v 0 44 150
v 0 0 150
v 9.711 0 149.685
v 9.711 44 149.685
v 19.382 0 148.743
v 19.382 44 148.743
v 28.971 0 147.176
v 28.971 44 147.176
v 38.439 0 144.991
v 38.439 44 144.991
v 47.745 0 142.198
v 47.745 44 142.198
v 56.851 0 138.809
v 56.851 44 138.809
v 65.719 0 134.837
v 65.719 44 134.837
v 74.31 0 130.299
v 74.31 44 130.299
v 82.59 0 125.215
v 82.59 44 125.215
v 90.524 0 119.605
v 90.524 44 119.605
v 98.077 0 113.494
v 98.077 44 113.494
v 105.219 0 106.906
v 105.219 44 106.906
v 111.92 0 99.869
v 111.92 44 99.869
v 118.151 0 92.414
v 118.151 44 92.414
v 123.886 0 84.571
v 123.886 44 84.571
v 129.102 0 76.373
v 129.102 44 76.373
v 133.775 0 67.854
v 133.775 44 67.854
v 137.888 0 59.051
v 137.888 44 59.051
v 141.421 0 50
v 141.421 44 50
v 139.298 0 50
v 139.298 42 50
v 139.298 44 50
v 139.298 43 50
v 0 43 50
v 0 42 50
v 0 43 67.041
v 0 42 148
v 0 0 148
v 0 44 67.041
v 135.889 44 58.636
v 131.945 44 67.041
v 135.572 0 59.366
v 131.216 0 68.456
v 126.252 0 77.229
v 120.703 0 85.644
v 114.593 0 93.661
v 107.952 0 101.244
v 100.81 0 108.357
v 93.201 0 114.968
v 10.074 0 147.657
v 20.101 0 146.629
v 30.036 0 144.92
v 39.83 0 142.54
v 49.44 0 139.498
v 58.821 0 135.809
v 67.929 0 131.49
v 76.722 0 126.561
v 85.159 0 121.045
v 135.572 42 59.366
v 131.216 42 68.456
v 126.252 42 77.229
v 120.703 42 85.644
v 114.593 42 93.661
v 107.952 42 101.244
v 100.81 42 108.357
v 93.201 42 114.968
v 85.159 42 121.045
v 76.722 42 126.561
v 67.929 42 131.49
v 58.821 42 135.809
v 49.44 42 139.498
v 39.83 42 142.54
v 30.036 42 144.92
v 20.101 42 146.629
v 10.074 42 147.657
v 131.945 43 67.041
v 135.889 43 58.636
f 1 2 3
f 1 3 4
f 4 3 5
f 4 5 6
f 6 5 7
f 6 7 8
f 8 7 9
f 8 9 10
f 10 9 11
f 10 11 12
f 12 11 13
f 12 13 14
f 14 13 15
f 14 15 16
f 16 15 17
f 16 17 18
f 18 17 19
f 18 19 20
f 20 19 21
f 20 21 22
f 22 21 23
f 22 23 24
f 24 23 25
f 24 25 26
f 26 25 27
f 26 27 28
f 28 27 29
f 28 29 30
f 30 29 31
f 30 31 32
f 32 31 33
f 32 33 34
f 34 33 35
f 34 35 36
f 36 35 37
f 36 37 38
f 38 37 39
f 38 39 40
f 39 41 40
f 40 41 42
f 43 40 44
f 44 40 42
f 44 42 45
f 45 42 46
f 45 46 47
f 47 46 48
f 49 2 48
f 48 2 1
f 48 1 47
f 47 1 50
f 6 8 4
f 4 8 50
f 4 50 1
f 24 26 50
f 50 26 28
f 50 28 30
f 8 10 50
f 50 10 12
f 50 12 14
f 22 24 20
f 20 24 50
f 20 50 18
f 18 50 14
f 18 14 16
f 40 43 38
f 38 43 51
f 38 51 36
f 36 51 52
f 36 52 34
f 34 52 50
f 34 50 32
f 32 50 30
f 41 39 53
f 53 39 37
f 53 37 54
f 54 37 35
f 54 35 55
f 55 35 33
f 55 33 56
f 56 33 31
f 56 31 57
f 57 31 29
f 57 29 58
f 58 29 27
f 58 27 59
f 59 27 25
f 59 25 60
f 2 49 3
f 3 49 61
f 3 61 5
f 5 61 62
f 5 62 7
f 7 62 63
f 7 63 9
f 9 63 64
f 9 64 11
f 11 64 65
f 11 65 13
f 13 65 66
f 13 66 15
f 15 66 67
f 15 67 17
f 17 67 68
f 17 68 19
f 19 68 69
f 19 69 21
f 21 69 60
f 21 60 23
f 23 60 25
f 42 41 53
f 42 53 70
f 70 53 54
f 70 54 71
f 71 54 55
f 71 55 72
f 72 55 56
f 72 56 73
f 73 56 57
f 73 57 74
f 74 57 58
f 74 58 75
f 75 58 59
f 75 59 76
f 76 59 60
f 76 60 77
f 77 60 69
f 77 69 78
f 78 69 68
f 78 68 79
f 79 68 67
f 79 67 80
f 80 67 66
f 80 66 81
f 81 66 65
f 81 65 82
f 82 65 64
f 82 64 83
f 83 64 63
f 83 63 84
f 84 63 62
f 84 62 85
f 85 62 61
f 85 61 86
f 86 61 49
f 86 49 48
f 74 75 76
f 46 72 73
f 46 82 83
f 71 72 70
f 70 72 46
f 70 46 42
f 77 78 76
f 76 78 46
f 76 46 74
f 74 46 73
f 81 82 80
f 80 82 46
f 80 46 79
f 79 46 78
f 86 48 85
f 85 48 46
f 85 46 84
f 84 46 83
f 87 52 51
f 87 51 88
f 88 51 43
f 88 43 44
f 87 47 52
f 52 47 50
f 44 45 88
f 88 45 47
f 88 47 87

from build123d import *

# Parameters (mm, degrees)
BOSS_EXTRUDE1_DEPTH = 44
SHELL1_T            = -2
CUT_EXTRUDE1_START  = -1
CUT_EXTRUDE1_DEPTH  = 1


with BuildPart() as part:
    # Sketch1 → Boss-Extrude1 (new body)
    with BuildSketch(Plane(origin=(0, 0, 0), x_dir=(1, 0, 0), z_dir=(0, 1, 0))):
        with BuildLine():
            Line((0, -150), (0, -50))
            Line((0, -50), (141.421356237, -50))
            ThreePointArc((141.421356237, -50), (86.602540378, -122.474487139), (0, -150))
        make_face()
    extrude(amount=BOSS_EXTRUDE1_DEPTH)

    # Shell1
    shell1_openings = [part.faces().sort_by_distance(p)[0] for p in [
        (56.564232989, 0, 91.421606215),
        (0, 22, 100),
        (70.710678119, 22, 50),
    ]]
    offset(amount=SHELL1_T, openings=shell1_openings, kind=Kind.INTERSECTION)

    # Sketch2 → Cut-Extrude1 (cut)
    with BuildSketch(Plane(origin=(0, 44, 0), x_dir=(1, 0, 0), z_dir=(0, 1, 0)).offset(CUT_EXTRUDE1_START)):
        with BuildLine():
            Line((0, -67.040946117), (131.94510807, -67.040946117))
            ThreePointArc((131.94510807, -67.040946117), (135.889061706, -58.635850029), (139.298241195, -50))
            Line((139.298241195, -50), (0, -50))
            Line((0, -50), (0, -67.040946117))
        make_face()
    extrude(amount=CUT_EXTRUDE1_DEPTH, mode=Mode.SUBTRACT)


solid = part.part
